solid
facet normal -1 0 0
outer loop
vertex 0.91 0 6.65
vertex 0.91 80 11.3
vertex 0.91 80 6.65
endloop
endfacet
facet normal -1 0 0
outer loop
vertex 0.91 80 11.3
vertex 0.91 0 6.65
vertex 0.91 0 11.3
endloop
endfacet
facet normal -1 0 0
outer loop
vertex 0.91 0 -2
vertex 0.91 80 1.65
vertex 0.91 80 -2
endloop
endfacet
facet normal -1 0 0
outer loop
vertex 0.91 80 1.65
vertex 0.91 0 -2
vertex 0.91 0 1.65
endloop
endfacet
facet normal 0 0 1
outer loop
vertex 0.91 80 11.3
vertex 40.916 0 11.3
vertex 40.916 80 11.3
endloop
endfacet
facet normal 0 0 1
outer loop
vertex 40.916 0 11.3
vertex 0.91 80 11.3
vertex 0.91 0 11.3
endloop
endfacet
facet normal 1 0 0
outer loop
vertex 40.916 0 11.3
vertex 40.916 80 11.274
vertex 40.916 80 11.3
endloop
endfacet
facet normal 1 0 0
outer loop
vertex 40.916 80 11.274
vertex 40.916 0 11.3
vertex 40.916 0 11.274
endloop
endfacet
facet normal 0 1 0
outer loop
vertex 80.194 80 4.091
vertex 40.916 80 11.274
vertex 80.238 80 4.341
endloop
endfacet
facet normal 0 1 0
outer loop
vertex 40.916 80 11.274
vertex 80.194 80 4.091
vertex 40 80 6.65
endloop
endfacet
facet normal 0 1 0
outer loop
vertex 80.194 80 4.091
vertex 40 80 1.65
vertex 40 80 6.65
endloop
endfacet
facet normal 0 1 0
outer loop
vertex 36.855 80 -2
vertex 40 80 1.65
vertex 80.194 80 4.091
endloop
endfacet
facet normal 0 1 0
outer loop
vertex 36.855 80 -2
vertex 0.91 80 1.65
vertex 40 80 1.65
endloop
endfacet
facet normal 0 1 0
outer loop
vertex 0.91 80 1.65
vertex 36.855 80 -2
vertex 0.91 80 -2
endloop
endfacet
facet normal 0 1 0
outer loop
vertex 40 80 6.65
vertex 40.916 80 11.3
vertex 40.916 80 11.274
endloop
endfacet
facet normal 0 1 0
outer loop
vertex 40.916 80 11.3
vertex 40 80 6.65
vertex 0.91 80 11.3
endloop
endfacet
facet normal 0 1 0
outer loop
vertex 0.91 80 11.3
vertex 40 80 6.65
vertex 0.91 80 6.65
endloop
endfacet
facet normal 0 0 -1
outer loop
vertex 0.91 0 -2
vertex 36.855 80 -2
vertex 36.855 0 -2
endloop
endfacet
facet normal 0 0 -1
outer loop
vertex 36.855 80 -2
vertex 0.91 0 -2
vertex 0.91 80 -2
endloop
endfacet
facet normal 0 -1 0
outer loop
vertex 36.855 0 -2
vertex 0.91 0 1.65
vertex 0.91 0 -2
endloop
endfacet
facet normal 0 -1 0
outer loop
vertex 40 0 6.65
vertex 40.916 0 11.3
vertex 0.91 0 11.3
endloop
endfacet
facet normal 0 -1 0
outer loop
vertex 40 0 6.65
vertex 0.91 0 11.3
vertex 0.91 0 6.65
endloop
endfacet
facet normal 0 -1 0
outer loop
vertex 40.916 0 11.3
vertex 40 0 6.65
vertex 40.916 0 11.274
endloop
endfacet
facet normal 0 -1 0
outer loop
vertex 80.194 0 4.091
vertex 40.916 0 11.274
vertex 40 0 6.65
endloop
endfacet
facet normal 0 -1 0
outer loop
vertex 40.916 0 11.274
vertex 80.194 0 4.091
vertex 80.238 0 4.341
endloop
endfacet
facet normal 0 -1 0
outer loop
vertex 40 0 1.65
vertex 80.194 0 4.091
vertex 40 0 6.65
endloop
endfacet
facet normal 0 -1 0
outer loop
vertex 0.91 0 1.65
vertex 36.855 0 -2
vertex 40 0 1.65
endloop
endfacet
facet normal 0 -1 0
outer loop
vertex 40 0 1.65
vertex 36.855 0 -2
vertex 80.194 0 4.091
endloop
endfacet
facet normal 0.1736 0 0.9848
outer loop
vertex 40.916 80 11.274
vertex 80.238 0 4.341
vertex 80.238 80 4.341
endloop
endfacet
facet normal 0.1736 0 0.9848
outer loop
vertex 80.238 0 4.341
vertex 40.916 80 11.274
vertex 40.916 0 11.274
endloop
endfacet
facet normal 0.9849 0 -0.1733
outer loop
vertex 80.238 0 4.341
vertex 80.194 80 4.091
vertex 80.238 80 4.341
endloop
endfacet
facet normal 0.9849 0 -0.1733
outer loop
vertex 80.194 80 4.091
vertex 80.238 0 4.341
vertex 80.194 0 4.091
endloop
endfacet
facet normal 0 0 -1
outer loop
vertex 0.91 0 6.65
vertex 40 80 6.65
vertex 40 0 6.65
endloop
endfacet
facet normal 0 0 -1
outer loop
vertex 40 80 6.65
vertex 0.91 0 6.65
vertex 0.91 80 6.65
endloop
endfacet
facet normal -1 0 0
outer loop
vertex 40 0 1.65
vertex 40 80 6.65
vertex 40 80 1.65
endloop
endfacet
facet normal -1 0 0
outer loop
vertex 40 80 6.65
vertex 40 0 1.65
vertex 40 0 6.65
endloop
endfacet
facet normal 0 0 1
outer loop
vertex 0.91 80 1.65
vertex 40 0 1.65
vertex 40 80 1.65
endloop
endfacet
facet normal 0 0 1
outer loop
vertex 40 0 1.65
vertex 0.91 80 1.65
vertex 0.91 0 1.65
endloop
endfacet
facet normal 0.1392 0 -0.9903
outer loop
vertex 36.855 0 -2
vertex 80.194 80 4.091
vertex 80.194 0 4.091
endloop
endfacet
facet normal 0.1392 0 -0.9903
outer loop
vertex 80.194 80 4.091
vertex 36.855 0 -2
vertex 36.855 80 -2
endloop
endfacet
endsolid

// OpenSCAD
difference(){
    translate([-35,0,-2])scale([1.9,1.9,1.9])union(){
        translate([18.9,0])cube([21.056,42.1052632,7]);
        translate([38.7,0,0.1])rotate([0,10])cube([21.056,42.1052632,7]);
    }
    translate([0,0,1.65])cube([40,80,5]);
    translate([36.8,0,-15.6])rotate([0,-8,0])cube([50,80,13.46]);
}
